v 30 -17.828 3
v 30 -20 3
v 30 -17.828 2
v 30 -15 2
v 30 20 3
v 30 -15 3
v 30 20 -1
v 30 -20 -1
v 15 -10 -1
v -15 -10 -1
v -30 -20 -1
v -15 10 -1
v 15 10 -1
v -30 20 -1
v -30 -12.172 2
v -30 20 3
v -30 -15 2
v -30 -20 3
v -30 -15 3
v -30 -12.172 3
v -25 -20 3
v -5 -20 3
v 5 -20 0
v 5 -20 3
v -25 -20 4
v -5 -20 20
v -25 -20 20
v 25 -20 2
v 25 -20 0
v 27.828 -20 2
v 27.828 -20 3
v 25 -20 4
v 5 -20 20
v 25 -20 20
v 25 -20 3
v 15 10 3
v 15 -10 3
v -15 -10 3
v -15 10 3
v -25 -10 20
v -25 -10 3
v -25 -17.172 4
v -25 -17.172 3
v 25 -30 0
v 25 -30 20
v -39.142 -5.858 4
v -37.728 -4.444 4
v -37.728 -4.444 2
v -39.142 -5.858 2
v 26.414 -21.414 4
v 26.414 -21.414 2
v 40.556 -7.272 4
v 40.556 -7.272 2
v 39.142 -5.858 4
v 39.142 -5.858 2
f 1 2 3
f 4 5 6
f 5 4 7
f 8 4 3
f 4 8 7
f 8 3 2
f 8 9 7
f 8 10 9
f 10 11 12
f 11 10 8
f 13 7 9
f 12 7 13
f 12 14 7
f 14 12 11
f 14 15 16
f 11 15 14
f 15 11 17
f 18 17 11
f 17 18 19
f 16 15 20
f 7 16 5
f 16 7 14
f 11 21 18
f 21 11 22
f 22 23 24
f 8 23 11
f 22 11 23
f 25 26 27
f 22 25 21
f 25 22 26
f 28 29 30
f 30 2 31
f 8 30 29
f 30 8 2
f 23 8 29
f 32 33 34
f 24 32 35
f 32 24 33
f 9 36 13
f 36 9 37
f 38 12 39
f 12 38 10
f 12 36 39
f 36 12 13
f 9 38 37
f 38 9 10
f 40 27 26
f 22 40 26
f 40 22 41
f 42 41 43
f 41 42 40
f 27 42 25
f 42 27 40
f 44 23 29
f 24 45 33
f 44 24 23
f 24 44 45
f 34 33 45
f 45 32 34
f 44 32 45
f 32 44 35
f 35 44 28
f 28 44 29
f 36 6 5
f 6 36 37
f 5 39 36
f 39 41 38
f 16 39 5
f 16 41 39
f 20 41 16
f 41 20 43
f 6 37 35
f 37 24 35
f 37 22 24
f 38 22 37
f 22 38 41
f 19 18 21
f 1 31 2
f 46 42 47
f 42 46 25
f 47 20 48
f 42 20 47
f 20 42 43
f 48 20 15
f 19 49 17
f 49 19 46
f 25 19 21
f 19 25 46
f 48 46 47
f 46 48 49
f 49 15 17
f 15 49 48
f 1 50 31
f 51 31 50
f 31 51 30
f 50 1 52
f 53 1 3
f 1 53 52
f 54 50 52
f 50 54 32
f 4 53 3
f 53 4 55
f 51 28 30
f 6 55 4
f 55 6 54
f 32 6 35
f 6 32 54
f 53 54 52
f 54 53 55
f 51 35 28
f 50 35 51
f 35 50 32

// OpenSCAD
// Module for the base frame
module base_frame() {
    difference() {
        // Base plate
        cube([60, 40, 2], center=true);

        // Cutout in the center
        translate([0, 0, -1])
            cube([30, 20, 4], center=true);
    }

    // Triangular side supports
    translate([-25, -20, 0])
        rotate([0, 0, 0])
            linear_extrude(height=20)
                polygon(points=[[0,0], [20,0], [0,10]]);

    translate([25, -20, 0])
        rotate([0, 0, 180])
            linear_extrude(height=20)
                polygon(points=[[0,0], [20,0], [0,10]]);
}

// Module for the support frame
module support_frame() {
    // Outer frame
    difference() {
        translate([0, 0, 2])
            cube([60, 40, 2], center=true);

        // Cutout in the center
        translate([0, 0, 1])
            cube([30, 20, 4], center=true);
    }

    // Diagonal ribs
    translate([-25, -20, 2])
        rotate([0, 0, 45])
            cube([2, 20, 2]);

    translate([25, -20, 2])
        rotate([0, 0, -45])
            cube([2, 20, 2]);
}

// Assemble the model
module full_model() {
    base_frame();
    support_frame();
}

full_model();
